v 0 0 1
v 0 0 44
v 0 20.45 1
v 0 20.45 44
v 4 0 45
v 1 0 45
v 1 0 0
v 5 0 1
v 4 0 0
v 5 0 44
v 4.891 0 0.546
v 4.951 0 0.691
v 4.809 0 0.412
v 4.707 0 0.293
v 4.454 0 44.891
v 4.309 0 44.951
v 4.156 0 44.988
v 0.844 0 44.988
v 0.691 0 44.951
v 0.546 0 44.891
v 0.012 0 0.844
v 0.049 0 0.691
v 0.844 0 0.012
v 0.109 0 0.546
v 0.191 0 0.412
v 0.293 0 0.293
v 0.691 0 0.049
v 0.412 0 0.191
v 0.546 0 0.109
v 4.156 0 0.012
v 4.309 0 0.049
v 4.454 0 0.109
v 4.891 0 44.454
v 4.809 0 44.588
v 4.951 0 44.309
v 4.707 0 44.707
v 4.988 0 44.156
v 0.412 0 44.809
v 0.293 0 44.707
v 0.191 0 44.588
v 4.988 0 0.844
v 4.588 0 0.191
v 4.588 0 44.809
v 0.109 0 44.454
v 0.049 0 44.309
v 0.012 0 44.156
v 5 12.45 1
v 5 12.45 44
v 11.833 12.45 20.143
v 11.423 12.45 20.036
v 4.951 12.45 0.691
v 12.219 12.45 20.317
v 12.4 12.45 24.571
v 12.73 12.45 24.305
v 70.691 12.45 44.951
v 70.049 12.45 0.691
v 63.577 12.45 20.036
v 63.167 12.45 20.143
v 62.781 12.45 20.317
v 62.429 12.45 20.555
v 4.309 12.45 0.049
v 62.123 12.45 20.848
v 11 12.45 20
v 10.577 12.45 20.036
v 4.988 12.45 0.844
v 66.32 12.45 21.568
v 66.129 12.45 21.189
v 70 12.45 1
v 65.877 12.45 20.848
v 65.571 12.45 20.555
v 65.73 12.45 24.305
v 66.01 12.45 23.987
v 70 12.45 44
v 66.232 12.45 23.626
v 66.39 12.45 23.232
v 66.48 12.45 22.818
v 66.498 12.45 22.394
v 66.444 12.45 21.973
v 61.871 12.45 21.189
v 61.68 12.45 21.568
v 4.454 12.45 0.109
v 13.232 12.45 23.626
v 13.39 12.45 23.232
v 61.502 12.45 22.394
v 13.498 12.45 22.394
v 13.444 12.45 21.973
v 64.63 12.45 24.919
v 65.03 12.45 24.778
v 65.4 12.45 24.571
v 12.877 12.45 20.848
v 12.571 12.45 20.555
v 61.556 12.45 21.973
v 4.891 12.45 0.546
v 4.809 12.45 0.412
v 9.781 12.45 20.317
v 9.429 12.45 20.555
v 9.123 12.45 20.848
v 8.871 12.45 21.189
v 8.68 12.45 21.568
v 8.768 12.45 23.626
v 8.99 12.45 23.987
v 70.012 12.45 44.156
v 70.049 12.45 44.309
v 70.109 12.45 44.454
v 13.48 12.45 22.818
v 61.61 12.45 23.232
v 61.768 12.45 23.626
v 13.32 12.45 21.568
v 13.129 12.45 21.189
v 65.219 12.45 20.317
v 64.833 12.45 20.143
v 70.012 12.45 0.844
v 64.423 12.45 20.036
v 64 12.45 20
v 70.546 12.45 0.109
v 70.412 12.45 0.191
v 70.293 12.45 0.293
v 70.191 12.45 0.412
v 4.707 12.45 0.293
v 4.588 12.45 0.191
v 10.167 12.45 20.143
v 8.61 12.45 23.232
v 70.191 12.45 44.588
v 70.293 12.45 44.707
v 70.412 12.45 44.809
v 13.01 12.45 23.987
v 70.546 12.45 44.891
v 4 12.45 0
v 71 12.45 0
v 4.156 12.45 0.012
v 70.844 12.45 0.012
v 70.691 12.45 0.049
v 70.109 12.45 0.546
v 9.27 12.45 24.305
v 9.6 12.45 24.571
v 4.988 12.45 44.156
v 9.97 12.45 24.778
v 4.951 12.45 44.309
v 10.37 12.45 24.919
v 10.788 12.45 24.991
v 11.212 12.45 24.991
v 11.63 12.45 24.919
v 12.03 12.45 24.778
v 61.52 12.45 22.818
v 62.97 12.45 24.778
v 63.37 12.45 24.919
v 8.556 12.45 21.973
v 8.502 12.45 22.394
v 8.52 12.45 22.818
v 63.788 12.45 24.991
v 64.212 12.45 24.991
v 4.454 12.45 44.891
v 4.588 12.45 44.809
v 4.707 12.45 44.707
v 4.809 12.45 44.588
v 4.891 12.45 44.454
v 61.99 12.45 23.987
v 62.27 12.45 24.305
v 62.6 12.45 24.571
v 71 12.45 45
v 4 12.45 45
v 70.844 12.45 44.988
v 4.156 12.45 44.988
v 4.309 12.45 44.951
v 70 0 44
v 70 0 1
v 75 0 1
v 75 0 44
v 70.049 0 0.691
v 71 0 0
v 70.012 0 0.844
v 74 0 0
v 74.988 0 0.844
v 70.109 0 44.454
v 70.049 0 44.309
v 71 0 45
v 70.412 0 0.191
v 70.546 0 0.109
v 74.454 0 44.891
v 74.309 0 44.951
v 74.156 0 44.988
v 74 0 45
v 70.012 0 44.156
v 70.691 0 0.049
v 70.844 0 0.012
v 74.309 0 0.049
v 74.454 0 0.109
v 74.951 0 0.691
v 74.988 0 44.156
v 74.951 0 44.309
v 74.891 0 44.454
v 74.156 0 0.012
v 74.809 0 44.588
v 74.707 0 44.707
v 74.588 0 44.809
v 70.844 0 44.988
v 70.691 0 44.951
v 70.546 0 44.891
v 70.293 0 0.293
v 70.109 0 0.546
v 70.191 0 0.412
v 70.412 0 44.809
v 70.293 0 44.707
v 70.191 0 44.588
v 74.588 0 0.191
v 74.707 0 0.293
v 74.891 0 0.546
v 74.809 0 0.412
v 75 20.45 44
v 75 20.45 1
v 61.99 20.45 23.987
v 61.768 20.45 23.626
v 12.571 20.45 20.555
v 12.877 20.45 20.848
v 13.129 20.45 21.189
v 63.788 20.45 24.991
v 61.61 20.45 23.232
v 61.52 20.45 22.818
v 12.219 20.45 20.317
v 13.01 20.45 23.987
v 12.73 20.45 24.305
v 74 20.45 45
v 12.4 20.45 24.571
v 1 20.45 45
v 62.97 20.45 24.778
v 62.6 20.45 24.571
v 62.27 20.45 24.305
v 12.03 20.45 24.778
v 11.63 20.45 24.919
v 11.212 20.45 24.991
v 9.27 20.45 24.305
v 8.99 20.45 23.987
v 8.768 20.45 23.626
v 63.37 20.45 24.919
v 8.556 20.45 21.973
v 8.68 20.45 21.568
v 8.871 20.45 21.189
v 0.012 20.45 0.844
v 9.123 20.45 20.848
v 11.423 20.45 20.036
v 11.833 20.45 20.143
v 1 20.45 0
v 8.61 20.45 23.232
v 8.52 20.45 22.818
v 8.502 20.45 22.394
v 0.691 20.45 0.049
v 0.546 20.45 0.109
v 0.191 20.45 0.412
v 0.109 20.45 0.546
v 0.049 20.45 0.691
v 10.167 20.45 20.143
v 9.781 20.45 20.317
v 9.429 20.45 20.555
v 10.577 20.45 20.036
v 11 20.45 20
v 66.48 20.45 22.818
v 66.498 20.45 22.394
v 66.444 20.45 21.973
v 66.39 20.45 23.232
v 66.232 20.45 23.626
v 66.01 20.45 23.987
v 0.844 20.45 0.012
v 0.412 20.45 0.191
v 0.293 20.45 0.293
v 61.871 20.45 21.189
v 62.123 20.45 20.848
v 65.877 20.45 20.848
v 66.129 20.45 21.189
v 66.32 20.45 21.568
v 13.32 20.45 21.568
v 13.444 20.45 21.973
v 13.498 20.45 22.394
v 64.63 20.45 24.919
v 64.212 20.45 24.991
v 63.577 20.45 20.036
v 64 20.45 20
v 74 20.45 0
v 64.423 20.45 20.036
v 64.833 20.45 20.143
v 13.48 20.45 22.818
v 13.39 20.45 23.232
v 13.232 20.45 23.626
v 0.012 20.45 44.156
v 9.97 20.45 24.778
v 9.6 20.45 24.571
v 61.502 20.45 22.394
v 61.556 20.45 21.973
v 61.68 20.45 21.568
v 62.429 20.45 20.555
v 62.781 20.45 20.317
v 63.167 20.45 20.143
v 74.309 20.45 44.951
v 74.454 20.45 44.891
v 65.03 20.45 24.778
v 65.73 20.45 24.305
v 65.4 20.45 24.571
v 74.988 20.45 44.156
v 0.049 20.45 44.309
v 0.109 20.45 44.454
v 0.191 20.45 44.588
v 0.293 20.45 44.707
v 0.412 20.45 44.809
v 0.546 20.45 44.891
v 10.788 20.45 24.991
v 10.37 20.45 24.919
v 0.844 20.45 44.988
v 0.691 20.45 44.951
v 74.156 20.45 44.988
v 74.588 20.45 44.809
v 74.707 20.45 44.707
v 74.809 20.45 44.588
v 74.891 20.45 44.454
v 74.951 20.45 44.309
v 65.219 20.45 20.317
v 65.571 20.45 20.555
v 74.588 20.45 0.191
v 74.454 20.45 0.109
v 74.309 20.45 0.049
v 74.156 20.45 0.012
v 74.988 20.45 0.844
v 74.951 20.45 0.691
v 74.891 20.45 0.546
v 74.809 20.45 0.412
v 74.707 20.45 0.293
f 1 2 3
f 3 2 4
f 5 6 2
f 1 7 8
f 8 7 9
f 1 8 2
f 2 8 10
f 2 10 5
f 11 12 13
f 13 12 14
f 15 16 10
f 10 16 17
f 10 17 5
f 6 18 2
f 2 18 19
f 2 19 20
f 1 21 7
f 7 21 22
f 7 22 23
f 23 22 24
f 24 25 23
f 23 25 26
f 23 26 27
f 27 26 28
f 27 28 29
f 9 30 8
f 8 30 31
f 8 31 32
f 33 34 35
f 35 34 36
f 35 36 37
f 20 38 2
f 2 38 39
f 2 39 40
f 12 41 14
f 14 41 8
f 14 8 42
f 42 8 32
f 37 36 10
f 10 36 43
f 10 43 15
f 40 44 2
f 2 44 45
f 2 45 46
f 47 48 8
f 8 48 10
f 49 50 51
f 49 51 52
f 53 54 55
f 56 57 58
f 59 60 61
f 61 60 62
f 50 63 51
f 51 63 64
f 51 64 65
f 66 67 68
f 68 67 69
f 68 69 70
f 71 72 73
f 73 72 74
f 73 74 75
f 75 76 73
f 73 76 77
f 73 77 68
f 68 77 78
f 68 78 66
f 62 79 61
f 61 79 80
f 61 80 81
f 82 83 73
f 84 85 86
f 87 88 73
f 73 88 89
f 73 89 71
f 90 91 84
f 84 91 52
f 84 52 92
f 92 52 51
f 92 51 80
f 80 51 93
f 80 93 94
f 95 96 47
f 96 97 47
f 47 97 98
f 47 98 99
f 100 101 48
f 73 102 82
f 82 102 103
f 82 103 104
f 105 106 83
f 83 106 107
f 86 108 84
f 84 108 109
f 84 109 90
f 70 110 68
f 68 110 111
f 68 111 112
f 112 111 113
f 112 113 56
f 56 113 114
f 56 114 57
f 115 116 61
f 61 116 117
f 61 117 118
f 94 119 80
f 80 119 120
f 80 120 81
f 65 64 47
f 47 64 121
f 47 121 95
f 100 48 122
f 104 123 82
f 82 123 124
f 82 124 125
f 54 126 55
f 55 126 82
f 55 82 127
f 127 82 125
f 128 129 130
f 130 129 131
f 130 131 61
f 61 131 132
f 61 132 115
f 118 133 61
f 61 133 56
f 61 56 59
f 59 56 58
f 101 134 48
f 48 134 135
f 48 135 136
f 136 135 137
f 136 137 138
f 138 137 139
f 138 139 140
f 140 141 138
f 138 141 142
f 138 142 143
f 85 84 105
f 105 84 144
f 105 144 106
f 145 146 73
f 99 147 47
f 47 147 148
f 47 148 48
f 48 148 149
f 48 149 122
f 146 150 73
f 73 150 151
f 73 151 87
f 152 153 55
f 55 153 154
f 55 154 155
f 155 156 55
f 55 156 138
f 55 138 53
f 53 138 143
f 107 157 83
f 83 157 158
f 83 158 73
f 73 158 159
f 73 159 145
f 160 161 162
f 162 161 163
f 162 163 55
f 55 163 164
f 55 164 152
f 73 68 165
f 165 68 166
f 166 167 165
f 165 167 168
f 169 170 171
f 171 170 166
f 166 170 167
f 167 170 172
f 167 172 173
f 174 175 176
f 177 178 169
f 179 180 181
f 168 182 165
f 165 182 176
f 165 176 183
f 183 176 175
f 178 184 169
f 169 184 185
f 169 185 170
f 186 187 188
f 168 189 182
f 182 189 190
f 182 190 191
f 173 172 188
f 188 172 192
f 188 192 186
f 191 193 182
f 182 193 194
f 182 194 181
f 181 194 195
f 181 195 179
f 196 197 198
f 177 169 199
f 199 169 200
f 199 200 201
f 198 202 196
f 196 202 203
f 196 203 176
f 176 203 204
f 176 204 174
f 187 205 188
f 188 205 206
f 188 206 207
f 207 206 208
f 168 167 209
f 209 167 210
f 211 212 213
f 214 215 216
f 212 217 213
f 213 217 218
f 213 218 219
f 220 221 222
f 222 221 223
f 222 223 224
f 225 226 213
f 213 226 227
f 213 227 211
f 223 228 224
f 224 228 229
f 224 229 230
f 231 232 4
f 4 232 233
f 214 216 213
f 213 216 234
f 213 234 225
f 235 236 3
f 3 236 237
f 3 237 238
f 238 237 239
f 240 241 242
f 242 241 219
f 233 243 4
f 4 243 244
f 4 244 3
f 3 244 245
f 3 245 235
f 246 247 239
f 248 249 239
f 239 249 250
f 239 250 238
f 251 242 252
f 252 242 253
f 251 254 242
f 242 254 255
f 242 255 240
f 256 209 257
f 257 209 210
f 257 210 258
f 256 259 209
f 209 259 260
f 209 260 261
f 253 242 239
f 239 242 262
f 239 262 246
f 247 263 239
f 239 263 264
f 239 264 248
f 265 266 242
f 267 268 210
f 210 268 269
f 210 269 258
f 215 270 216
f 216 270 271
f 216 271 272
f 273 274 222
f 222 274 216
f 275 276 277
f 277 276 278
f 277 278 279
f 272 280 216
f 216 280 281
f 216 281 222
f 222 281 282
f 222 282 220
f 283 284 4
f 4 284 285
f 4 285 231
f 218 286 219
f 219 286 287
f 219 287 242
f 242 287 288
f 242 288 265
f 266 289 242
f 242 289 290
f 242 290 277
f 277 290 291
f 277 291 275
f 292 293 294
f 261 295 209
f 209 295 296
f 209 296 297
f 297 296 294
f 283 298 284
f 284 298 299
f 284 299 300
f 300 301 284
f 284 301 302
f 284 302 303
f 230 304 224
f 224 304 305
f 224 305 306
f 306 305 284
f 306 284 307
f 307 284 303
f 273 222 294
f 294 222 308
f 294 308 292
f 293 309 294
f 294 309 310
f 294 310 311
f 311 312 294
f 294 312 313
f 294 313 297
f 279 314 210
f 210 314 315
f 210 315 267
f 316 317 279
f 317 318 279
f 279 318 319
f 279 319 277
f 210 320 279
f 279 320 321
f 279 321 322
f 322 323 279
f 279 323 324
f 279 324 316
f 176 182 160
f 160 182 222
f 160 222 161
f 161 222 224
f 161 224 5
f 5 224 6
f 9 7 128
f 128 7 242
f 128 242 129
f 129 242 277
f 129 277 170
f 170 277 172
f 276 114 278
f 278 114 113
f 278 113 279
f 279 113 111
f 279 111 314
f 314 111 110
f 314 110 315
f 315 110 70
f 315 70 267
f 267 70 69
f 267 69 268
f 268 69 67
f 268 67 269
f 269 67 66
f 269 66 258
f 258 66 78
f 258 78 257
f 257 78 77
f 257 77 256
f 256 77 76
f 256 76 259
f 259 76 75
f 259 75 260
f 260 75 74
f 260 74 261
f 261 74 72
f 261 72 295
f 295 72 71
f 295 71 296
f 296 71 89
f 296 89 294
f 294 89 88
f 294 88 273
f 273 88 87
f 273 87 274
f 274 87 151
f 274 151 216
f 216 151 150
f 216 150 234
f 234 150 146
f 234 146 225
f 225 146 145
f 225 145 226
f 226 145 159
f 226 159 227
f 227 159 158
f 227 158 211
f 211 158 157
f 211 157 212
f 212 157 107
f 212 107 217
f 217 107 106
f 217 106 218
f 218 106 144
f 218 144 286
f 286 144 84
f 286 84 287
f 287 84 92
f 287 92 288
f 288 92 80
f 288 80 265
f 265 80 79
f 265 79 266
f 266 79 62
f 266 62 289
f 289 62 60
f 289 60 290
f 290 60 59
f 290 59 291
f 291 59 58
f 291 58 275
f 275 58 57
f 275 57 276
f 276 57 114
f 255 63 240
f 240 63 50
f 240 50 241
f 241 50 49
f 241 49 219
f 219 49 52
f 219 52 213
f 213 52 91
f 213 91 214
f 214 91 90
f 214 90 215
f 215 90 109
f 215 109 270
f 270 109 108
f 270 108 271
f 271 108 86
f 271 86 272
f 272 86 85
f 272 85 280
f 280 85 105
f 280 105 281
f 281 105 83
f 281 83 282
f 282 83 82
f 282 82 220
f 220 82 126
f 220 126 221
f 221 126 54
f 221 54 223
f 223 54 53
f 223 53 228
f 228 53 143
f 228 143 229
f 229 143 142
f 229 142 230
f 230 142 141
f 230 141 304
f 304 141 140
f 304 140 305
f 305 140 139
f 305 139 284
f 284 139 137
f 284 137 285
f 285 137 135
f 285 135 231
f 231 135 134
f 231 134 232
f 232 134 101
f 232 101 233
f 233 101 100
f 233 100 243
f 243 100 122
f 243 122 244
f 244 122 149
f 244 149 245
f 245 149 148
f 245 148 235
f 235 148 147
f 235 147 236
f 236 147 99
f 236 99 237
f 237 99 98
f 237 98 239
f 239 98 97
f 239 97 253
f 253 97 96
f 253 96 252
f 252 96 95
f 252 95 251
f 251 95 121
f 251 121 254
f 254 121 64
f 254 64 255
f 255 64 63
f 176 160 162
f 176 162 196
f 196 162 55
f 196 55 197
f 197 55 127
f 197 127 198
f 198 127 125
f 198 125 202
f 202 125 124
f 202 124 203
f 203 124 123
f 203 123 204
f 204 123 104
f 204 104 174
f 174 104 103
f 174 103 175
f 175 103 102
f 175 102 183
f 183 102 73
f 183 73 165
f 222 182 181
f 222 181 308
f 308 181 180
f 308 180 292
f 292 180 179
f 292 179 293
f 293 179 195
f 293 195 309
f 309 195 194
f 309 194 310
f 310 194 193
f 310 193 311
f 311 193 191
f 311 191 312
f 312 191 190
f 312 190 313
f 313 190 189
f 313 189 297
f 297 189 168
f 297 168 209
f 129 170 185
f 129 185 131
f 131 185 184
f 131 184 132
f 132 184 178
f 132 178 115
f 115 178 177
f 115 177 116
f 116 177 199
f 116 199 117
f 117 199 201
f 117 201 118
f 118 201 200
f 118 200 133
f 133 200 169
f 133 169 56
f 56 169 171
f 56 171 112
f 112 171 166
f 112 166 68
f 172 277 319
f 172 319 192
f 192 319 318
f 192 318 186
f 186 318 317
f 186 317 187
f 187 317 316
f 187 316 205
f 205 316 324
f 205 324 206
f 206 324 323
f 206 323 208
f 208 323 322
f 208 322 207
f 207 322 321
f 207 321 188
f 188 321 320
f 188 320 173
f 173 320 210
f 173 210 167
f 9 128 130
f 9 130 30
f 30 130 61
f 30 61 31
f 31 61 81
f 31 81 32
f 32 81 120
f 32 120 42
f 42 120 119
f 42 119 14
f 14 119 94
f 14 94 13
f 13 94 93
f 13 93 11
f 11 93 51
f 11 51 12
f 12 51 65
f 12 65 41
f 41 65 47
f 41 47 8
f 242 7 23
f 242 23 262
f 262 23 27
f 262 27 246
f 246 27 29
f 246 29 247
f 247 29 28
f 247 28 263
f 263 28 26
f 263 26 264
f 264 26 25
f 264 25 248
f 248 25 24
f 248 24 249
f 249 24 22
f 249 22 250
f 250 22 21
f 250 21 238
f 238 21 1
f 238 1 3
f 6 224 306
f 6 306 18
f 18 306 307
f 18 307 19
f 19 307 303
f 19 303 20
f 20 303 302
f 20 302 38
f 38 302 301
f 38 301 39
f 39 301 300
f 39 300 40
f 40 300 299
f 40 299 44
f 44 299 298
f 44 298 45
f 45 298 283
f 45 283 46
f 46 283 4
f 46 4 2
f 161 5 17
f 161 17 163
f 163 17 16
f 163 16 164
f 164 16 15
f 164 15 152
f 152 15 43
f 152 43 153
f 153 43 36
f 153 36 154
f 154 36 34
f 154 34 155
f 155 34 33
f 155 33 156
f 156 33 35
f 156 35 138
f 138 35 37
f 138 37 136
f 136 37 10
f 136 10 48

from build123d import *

# Parameters (mm, degrees)
BOSS_EXTRUDE1_DEPTH = 45
SKETCH2_R           = 2.5
CUT_EXTRUDE1_DEPTH  = 89.345925203
FILLET1_R           = 1


with BuildPart() as part:
    # Sketch1 → Boss-Extrude1 (new body)
    with BuildSketch(Plane.XY):
        Polygon((0, 0), (5, 0), (5, 12.45), (70, 12.45), (70, 0), (75, 0), (75, 20.45), (0, 20.45), align=None)
    extrude(amount=BOSS_EXTRUDE1_DEPTH)

    # Sketch2 → Cut-Extrude1 (cut, through all)
    with BuildSketch(Plane.XZ.offset(-12.45)):
        with Locations(Location((11, 22.5, 0), (0, 0, 270))):
            Circle(SKETCH2_R)
        with Locations(Location((64, 22.5, 0), (0, 0, 270))):
            Circle(SKETCH2_R)
    extrude(amount=-CUT_EXTRUDE1_DEPTH, mode=Mode.SUBTRACT)

    # Fillet1
    fillet1_edges = [part.edges().sort_by_distance(p)[0] for p in [
        (5, 6.225, 0),
        (0, 10.225, 0),
        (5, 6.225, 45),
        (70, 6.225, 45),
        (75, 10.225, 45),
        (0, 10.225, 45),
        (75, 10.225, 0),
        (70, 6.225, 0),
    ]]
    fillet(fillet1_edges, radius=FILLET1_R)


solid = part.part
